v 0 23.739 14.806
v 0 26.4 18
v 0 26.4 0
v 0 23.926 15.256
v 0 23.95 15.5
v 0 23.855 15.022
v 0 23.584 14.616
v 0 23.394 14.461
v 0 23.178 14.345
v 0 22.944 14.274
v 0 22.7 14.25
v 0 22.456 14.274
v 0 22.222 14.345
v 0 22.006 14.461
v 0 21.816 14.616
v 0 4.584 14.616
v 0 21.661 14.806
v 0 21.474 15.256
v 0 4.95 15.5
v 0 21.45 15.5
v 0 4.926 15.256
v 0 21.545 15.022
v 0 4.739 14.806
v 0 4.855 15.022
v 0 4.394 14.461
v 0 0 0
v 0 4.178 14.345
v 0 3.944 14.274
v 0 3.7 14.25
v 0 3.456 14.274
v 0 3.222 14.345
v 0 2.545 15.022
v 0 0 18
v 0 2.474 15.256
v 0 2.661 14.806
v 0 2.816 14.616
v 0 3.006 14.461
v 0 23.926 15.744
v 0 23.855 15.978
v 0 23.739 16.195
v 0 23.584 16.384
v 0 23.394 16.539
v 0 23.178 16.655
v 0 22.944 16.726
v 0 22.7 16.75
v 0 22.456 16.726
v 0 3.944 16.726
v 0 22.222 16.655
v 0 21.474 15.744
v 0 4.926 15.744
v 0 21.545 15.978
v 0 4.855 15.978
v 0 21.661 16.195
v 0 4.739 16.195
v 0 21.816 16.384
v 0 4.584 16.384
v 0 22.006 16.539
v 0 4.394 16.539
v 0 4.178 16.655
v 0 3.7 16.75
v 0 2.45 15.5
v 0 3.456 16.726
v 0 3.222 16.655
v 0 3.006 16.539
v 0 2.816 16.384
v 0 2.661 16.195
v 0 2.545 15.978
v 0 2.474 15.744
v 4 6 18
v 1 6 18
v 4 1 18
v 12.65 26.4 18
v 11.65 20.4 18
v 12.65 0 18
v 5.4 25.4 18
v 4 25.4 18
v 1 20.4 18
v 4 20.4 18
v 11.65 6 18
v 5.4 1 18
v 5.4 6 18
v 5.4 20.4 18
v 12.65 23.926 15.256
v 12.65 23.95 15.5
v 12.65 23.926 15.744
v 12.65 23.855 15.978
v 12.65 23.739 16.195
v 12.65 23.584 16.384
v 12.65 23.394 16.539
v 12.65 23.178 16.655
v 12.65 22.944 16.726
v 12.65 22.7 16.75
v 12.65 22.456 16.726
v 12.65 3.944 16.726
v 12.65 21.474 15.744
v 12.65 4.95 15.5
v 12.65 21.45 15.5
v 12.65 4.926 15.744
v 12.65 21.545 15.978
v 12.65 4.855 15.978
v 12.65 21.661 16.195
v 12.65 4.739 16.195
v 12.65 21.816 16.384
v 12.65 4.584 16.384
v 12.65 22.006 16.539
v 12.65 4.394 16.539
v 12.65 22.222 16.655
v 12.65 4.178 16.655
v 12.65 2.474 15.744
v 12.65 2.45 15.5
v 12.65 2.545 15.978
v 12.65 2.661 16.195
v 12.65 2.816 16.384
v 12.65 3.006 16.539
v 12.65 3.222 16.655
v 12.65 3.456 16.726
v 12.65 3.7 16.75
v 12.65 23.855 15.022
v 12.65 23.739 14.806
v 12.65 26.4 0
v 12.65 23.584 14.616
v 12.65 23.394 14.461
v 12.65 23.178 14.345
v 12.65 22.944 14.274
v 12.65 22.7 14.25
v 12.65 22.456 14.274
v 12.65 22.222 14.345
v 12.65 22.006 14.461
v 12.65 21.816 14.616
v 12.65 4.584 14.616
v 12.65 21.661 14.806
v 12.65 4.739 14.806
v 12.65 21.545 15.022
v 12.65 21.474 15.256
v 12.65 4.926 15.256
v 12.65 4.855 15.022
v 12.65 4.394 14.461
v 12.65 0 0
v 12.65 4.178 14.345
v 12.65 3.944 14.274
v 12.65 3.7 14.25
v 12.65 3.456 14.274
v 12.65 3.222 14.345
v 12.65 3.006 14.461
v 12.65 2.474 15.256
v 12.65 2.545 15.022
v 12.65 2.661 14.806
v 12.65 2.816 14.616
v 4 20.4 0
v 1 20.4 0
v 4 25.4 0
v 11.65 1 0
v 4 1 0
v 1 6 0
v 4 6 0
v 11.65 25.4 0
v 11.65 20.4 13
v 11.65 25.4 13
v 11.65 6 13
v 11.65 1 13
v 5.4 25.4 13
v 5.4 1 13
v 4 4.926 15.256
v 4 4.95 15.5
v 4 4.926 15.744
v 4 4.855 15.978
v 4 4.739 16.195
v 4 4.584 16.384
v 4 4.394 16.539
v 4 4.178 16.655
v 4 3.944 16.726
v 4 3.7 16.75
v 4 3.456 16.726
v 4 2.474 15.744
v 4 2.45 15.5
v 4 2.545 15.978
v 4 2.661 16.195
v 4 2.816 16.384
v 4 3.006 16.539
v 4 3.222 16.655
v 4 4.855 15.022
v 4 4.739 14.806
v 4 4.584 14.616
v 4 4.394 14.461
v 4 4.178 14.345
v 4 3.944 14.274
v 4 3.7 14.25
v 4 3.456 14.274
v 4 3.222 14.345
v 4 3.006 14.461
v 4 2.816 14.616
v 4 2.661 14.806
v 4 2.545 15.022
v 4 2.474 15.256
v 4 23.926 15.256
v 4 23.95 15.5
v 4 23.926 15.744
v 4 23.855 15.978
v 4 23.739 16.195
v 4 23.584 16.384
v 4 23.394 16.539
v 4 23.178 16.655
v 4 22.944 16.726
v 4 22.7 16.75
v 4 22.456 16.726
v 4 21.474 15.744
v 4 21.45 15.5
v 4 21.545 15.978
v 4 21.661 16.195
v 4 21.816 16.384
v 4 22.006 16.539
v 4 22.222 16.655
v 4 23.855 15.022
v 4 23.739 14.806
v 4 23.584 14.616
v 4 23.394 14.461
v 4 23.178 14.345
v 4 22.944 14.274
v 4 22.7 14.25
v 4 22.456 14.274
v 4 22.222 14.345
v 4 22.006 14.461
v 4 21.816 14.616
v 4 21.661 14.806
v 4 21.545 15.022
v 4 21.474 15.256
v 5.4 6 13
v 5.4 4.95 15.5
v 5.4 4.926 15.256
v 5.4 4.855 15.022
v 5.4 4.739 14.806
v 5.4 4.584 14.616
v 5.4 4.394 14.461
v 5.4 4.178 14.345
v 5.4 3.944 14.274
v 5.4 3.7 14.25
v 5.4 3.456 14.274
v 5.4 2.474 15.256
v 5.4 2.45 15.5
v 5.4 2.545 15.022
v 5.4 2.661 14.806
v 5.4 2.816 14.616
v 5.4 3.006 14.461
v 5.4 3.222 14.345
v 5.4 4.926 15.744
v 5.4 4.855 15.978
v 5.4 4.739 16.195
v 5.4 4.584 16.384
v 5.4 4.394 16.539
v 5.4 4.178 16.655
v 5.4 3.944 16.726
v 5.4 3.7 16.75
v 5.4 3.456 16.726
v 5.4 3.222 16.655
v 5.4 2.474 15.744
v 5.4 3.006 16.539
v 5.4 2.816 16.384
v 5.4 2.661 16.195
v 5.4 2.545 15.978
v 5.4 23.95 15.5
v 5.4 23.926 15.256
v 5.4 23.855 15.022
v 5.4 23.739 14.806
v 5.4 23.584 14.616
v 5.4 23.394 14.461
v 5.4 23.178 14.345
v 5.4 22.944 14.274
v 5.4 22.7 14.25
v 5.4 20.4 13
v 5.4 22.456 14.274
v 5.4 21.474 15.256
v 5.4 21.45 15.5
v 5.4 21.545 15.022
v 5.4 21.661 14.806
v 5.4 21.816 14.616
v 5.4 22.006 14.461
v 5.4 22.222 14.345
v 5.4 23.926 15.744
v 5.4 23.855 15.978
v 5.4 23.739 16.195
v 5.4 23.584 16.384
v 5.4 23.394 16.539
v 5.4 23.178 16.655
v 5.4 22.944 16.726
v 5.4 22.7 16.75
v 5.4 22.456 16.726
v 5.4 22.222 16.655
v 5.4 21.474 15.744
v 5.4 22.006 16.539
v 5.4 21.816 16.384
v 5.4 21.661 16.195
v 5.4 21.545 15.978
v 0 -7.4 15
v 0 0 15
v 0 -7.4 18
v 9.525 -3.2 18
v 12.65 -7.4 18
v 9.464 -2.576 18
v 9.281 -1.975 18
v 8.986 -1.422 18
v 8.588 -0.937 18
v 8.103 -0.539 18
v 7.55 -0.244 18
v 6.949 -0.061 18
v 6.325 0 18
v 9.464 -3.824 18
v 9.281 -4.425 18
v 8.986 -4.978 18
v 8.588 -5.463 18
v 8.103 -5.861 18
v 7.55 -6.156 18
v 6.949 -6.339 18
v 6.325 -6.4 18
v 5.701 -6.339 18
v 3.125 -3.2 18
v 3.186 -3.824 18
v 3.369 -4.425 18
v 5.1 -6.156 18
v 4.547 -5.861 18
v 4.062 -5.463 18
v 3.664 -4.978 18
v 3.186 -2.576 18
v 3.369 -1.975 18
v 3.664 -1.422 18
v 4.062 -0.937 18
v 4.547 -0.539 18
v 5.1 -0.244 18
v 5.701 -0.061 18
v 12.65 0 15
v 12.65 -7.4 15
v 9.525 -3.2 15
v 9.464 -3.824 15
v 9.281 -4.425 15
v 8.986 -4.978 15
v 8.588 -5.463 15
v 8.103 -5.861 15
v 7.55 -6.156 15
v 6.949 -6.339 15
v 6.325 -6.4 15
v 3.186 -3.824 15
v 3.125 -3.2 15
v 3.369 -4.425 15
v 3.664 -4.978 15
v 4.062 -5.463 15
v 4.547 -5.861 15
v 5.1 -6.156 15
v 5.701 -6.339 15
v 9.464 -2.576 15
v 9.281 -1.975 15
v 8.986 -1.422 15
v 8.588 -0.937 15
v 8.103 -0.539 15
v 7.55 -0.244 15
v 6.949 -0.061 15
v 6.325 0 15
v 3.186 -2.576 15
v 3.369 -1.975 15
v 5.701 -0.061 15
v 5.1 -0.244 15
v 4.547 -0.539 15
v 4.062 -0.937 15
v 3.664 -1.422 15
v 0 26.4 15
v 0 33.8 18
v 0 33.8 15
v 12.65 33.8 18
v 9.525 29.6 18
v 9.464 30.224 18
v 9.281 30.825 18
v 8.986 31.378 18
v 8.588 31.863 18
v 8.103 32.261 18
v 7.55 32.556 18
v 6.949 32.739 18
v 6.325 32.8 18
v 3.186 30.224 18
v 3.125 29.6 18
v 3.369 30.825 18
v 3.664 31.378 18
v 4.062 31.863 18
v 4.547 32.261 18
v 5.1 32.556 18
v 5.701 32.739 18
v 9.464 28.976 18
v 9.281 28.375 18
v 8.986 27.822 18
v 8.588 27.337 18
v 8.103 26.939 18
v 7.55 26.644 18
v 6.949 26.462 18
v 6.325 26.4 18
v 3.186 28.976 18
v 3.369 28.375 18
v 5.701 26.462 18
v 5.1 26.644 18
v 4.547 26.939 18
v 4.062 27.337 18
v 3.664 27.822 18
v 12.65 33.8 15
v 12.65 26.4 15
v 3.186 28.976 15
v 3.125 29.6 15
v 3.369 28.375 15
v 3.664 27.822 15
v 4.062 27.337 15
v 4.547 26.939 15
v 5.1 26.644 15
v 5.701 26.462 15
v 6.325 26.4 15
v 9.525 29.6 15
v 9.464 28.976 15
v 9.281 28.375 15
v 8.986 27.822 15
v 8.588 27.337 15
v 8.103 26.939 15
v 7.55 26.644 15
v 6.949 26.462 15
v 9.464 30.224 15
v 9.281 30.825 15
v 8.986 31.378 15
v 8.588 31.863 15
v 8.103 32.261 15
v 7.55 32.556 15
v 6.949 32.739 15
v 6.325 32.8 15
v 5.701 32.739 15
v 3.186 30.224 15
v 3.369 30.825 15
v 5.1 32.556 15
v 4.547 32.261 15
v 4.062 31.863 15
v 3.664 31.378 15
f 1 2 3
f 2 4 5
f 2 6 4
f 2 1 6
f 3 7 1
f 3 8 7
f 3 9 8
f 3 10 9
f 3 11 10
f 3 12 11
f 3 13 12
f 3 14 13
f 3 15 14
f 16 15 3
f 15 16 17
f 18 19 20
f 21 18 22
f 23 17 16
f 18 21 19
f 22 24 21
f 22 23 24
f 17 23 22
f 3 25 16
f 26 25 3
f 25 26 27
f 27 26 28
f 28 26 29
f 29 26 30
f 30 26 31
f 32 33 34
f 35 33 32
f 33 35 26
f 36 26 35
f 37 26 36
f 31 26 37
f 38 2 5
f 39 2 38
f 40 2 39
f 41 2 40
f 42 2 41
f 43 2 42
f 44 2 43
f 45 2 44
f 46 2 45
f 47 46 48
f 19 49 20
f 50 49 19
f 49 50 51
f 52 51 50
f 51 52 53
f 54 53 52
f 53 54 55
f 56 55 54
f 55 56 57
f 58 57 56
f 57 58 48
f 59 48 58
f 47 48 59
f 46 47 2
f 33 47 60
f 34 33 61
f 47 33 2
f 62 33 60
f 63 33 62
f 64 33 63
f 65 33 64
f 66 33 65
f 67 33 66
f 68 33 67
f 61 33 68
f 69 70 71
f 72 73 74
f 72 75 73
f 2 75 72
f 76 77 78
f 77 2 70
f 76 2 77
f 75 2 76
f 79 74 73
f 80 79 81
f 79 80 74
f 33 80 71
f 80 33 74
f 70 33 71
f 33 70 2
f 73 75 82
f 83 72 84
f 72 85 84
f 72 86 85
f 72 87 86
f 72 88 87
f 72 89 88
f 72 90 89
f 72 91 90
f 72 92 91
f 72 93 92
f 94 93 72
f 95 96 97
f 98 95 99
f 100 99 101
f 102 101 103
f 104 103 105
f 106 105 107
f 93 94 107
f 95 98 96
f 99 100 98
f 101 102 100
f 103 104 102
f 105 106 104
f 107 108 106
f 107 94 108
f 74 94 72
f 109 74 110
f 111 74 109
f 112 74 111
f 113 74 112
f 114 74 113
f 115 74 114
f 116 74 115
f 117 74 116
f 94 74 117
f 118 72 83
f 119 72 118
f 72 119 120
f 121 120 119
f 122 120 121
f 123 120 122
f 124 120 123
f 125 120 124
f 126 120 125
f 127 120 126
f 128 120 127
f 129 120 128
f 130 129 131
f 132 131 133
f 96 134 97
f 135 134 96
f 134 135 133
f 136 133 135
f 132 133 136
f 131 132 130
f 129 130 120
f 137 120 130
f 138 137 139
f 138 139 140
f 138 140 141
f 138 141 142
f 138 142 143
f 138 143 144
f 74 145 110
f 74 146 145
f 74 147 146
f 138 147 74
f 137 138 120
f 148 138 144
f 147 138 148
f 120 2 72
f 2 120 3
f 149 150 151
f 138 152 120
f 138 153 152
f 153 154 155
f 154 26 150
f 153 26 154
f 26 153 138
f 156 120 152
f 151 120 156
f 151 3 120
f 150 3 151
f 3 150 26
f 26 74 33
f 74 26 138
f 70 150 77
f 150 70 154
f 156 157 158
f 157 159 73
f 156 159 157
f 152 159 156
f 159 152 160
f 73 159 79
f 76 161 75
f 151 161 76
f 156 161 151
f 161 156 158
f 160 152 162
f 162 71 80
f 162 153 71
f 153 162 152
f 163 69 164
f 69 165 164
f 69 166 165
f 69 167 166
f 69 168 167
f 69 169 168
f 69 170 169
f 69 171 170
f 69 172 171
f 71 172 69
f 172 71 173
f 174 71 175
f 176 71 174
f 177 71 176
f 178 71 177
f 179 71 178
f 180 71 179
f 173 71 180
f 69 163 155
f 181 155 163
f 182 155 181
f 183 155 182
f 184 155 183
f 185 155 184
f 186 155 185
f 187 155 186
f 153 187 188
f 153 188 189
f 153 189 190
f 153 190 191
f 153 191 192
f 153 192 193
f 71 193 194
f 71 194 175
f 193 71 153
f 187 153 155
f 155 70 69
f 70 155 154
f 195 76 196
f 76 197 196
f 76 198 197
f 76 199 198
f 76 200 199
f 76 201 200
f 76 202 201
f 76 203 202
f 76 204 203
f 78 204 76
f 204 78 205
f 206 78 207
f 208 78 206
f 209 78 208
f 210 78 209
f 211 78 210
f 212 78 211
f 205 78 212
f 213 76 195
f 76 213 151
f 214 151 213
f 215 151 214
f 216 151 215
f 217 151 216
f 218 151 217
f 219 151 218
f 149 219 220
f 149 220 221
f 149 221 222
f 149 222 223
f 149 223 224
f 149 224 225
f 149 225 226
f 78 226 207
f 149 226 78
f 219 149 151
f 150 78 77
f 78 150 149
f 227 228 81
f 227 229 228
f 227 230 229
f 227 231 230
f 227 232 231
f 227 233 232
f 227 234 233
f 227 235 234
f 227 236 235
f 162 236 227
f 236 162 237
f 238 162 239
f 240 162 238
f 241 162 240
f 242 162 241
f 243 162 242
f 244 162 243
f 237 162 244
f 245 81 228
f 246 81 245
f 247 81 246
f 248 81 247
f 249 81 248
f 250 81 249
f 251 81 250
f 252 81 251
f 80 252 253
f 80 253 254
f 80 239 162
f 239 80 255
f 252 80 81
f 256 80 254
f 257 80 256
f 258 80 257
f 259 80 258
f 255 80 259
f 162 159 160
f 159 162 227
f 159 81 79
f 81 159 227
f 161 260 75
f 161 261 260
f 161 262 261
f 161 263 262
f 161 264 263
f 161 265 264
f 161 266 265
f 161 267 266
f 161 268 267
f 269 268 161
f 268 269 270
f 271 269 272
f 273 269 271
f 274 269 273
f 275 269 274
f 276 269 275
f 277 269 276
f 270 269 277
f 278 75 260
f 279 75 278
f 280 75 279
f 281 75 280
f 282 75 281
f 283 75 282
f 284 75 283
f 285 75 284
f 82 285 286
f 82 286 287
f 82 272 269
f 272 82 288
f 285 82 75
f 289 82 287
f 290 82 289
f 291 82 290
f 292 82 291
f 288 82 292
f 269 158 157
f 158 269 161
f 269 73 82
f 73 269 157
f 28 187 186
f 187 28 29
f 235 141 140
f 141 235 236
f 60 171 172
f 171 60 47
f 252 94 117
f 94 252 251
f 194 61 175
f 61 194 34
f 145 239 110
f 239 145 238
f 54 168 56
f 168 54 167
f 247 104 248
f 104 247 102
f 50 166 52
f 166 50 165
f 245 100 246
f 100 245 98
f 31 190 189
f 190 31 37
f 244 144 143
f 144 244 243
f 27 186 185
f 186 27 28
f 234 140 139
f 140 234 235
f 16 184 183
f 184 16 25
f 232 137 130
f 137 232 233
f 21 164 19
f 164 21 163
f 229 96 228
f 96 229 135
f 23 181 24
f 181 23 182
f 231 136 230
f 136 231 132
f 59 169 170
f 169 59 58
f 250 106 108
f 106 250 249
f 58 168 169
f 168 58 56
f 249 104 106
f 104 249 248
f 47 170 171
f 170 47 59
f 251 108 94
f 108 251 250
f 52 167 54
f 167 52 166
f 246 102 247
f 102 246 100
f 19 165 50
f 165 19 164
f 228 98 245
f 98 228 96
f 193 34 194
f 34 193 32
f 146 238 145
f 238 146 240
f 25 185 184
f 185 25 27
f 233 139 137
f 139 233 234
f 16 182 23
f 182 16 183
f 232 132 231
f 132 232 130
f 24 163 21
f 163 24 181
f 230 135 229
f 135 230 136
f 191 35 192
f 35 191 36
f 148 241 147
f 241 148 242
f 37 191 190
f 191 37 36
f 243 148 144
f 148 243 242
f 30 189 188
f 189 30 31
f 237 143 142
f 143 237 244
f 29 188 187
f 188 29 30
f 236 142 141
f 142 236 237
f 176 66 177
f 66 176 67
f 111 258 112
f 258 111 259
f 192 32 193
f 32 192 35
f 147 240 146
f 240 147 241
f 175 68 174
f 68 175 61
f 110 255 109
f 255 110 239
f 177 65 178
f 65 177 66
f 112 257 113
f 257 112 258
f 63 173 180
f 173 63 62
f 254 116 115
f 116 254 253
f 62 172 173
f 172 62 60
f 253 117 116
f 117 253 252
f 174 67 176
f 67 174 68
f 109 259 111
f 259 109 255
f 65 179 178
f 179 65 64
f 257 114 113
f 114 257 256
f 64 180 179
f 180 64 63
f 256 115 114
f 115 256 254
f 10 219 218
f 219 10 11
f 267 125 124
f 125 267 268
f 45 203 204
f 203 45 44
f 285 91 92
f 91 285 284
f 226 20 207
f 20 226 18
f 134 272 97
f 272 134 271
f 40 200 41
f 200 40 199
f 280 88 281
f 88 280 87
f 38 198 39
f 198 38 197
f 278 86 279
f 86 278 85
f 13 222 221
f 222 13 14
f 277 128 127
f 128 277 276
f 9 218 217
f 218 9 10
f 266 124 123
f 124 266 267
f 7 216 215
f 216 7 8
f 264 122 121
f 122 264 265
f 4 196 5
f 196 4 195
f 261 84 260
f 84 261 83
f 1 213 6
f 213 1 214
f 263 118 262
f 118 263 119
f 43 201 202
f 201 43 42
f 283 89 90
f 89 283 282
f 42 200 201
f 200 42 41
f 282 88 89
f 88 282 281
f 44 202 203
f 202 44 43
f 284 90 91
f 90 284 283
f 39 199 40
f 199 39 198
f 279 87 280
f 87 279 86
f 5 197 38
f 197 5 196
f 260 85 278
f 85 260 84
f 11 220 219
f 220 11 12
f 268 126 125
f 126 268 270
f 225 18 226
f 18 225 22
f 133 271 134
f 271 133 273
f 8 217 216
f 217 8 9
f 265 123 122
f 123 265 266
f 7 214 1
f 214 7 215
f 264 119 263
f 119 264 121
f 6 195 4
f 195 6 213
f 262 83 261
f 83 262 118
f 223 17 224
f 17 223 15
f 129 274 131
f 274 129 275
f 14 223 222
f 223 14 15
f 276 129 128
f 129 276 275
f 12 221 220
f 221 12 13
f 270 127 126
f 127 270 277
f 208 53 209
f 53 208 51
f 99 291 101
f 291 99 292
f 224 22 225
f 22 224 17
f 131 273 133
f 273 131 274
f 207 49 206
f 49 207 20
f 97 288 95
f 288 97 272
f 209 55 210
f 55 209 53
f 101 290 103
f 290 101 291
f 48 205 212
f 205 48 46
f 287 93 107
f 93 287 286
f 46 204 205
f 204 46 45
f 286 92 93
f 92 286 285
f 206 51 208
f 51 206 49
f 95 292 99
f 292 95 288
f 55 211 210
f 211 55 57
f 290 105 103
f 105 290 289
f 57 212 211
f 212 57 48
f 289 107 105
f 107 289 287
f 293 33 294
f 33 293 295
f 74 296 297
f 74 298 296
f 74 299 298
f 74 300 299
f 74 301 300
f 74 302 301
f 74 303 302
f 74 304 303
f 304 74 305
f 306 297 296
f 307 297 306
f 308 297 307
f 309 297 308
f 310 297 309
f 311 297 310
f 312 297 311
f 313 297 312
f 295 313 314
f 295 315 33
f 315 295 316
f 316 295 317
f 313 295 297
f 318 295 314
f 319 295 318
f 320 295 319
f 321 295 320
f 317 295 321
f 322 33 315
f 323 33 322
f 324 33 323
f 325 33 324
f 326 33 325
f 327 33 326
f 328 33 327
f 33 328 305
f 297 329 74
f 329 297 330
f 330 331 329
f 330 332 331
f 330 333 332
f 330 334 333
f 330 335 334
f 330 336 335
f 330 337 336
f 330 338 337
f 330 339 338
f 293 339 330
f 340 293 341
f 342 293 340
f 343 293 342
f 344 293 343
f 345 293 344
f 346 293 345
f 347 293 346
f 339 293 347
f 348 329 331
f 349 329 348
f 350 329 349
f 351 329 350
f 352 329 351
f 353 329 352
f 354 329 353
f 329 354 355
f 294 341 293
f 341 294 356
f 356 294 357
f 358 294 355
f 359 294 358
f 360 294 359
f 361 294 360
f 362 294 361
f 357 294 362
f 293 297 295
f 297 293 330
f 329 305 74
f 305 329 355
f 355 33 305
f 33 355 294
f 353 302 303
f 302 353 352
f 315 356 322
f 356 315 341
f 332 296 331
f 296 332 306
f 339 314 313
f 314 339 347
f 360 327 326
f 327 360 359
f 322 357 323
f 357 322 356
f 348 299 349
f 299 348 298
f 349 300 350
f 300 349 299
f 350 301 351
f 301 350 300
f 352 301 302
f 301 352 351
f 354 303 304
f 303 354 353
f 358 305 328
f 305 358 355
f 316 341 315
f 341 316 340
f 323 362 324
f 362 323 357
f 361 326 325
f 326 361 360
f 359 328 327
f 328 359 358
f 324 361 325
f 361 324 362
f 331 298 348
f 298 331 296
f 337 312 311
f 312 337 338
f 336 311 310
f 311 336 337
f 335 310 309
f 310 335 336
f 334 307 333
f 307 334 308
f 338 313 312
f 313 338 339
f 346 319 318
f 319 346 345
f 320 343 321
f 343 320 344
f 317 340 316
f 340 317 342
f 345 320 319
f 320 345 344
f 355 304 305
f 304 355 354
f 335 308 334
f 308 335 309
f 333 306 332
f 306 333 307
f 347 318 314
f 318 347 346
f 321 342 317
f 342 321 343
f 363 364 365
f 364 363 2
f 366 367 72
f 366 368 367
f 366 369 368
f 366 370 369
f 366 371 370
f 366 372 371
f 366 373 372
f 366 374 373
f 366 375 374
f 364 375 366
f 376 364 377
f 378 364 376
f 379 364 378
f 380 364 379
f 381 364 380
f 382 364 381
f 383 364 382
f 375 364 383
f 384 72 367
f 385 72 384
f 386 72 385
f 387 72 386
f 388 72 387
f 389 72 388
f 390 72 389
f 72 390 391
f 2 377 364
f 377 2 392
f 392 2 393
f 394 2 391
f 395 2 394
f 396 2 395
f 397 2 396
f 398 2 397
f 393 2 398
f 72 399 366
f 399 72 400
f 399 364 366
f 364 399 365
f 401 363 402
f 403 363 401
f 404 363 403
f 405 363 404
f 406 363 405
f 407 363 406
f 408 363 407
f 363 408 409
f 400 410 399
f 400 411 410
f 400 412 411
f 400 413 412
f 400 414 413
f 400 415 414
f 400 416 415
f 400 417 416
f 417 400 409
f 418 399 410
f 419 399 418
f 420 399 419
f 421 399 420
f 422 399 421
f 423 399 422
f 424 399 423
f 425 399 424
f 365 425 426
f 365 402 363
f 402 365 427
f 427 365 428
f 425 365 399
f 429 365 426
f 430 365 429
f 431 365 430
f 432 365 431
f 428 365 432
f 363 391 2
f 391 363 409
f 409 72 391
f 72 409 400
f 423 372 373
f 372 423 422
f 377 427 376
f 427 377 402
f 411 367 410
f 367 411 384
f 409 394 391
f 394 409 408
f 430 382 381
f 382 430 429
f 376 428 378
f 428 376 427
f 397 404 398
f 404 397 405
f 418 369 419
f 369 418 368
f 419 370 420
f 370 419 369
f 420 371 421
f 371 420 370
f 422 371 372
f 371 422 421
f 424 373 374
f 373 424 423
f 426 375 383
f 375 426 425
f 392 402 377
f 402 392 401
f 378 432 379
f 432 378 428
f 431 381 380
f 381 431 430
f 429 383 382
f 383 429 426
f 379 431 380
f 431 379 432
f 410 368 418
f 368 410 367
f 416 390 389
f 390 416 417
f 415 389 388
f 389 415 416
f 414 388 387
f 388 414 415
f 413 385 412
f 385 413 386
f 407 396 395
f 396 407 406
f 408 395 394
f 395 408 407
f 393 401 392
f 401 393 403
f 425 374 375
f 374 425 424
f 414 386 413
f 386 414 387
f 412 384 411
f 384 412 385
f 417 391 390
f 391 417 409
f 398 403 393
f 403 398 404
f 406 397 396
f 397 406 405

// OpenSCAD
/**********************************************************************************************************************
 **
 ** parts/printed/ir_sensor_housing.scad
 **
 ** This file constructs the housing for the Mini Differential IR height sensor board available from 
 ** http://www.escher3d.com/pages/order/products/product1.php
 **
 **********************************************************************************************************************/

include <../../conf/colors.scad>
include <../../conf/derived_sizes.scad>
include <../../conf/part_sizes.scad>

use <../../bom/bom.scad>
use <../../parts/vitamins/vitamins.scad>

/**
 * Renders the main body of the housing without the "wings" to fasten it.
 */
module _ir_sensor_housing_body() {

	difference() {
		union() {
			// the outer shape of the housing
			difference() {
				cube([escher_ir_sensor_housing_body_depth(),
					  escher_ir_sensor_housing_body_width(),
					  escher_ir_sensor_housing_body_height()]);
				translate([escher_ir_sensor_housing_wall_thickness(), escher_ir_sensor_housing_wall_thickness(), 0])
				cube([escher_ir_sensor_housing_body_depth() - 2 * escher_ir_sensor_housing_wall_thickness(),
					  escher_ir_sensor_housing_body_width() - 2 * escher_ir_sensor_housing_wall_thickness(),
					  escher_ir_sensor_housing_body_height()]);
			}
		
			// the "resting blocks" on the underside of the PCB
			translate([escher_ir_sensor_housing_wall_thickness(), 
				       escher_ir_sensor_housing_wall_thickness(), 
				       0])
				cube([escher_ir_sensor_housing_top_bottom_clearance() + escher_ir_sensor_pcb_max_pin_length(),
					  escher_ir_sensor_pcb_bottom_side_clearance(),
					  escher_ir_sensor_housing_body_height()]);
			translate([escher_ir_sensor_housing_wall_thickness(), 
				       escher_ir_sensor_housing_body_width() - escher_ir_sensor_housing_wall_thickness() - escher_ir_sensor_pcb_bottom_side_clearance(), 
				       0])
				cube([escher_ir_sensor_housing_top_bottom_clearance() + escher_ir_sensor_pcb_max_pin_length(),
					  escher_ir_sensor_pcb_bottom_side_clearance(),
					  escher_ir_sensor_housing_body_height()]);
		
			// the "mounting blocks" on the component side of the PCB
			_mounting_block_thickness = escher_ir_sensor_pcb_max_component_height() + 
			                            escher_ir_sensor_housing_top_bottom_clearance();
			_mounting_block_x_offset = escher_ir_sensor_housing_body_depth() - escher_ir_sensor_housing_wall_thickness() - _mounting_block_thickness;
			translate([_mounting_block_x_offset, 
				       escher_ir_sensor_housing_wall_thickness(), 
				       escher_ir_sensor_housing_body_height() - escher_ir_sensor_pcb_top_edge_clearance()])
				cube([_mounting_block_thickness,
					  escher_ir_sensor_pcb_top_edge_clearance(),
					  escher_ir_sensor_pcb_top_edge_clearance()]);
			translate([_mounting_block_x_offset, 
					   escher_ir_sensor_housing_body_width() - escher_ir_sensor_housing_wall_thickness() - escher_ir_sensor_pcb_top_edge_clearance(), 
				       escher_ir_sensor_housing_body_height() - escher_ir_sensor_pcb_top_edge_clearance()])
				cube([_mounting_block_thickness,
					  escher_ir_sensor_pcb_top_edge_clearance(),
					  escher_ir_sensor_pcb_top_edge_clearance()]);
		}

		// minus the screw holes
		translate([-epsilon(),
			       escher_ir_sensor_screw_y_offset(),
			       escher_ir_sensor_screw_z_offset()])
			rotate([0, 90, 0])
				cylinder(d = tap_base_diameter(escher_ir_sensor_hole_size()),
					     h = escher_ir_sensor_housing_body_depth() + 2 * epsilon(),
				    	 $fn = escher_ir_sensor_resolution());
		translate([-epsilon(),
			       escher_ir_sensor_housing_body_width() - escher_ir_sensor_screw_y_offset(),
			       escher_ir_sensor_screw_z_offset()])
			rotate([0, 90, 0])
				cylinder(d = tap_base_diameter(escher_ir_sensor_hole_size()),
					     h = escher_ir_sensor_housing_body_depth() + 2 * epsilon(),
				    	 $fn = escher_ir_sensor_resolution());
	}
}

/**
 * Renders the two "wings" that hold the magnets.
 */
module _ir_sensor_housing_magnet_holders() {

	// move to the Z base
	translate([0, 0, escher_ir_sensor_housing_body_height() - escher_ir_sensor_magnet_holder_height()]) {

		// create the left block
		translate([0, -escher_ir_sensor_magnet_holder_width(), 0]) 
			difference() {
				// the block
				cube([escher_ir_sensor_magnet_holder_depth(),
					  escher_ir_sensor_magnet_holder_width(),
					  escher_ir_sensor_magnet_holder_height()]);

				// minus the hole for the magnets
				translate([escher_ir_sensor_magnet_holder_depth() / 2,
					       escher_ir_sensor_housing_wall_thickness() + escher_ir_sensor_magnet_clearance() + escher_ir_sensor_magnet_diameter()/2,
					       escher_ir_sensor_magnet_holder_height() - (escher_ir_sensor_magnet_height() + escher_ir_sensor_magnet_clearance())])
				cylinder(d = escher_ir_sensor_magnet_diameter() + 2 * escher_ir_sensor_magnet_clearance(),
					     h = escher_ir_sensor_magnet_height() + escher_ir_sensor_magnet_clearance(),
					     $fn = escher_ir_sensor_resolution());
			}

		// create the right block
		translate([0, escher_ir_sensor_housing_body_width(), 0]) 
			difference() {
				// the block
				cube([escher_ir_sensor_magnet_holder_depth(),
					  escher_ir_sensor_magnet_holder_width(),
					  escher_ir_sensor_magnet_holder_height()]);

				// minus the hole for the magnets
				translate([escher_ir_sensor_magnet_holder_depth() / 2,
					       escher_ir_sensor_magnet_clearance() + escher_ir_sensor_magnet_diameter()/2,
					       escher_ir_sensor_magnet_holder_height() - (escher_ir_sensor_magnet_height() + escher_ir_sensor_magnet_clearance())])
				cylinder(d = escher_ir_sensor_magnet_diameter() + 2 * escher_ir_sensor_magnet_clearance(),
					     h = escher_ir_sensor_magnet_height() + escher_ir_sensor_magnet_clearance(),
					     $fn = escher_ir_sensor_resolution());
			}
	}
} 

/**
 * Creates the housing by rendering it from scratch. This module is not to be called externally, use 
 * ir_sensor_housing() instead.
 */
module _render_ir_sensor_housing() {
	color_printed_head_parts()
		render() {
			_ir_sensor_housing_body();
			_ir_sensor_housing_magnet_holders();
		} 
}

/**
 * Main module to use the pre-rendered sensor housing. 
 * TODO describe the orientation of the housing
 */
module ir_sensor_housing() {
	bom_entry(section = "Printed Parts", description = "Small Parts", size = "IR Sensor Housing");
	color_printed_head_parts()
		import(file = "ir_sensor_housing.stl");
}

/** 
 * Renders the hardware (nuts, bolts, screws) that are used to fixed the printed part to the surrounding parts.
 * This also includes the sensor board.
 */
module ir_sensor_housing_hardware() {

	// the sensor board inside the housing
	translate([escher_ir_sensor_housing_wall_thickness() 
		       + escher_ir_sensor_housing_top_bottom_clearance()
               + escher_ir_sensor_pcb_max_pin_length()
               + escher_ir_sensor_housing_pcb_clearance(),
		       escher_ir_sensor_housing_wall_thickness() 
               + escher_ir_sensor_housing_pcb_clearance(),
		       0])
		escher_ir_sensor();

	// the screws to hold the sensor board
	translate([-epsilon(),
		       escher_ir_sensor_screw_y_offset(),
		       escher_ir_sensor_screw_z_offset()])
		screw(size = escher_ir_sensor_hole_size(),
			  min_length = escher_ir_sensor_screw_min_length(),
			  max_length = escher_ir_sensor_housing_body_depth());
	translate([-epsilon(),
		       escher_ir_sensor_housing_body_width() - escher_ir_sensor_screw_y_offset(),
		       escher_ir_sensor_screw_z_offset()])
		screw(size = escher_ir_sensor_hole_size(),
			  min_length = escher_ir_sensor_screw_min_length(),
			  max_length = escher_ir_sensor_housing_body_depth());

	// the magnets
	translate([escher_ir_sensor_magnet_holder_depth()/2,
		       - escher_ir_sensor_magnet_diameter() / 2 - escher_ir_sensor_magnet_clearance(), 
		       escher_ir_sensor_housing_body_height() - escher_ir_sensor_magnet_height()]) 
		magnet_cylinder();
	translate([escher_ir_sensor_magnet_holder_depth()/2,
		       escher_ir_sensor_housing_body_width() + escher_ir_sensor_magnet_diameter() / 2 + escher_ir_sensor_magnet_clearance(), 
		       escher_ir_sensor_housing_body_height() - escher_ir_sensor_magnet_height()]) 
		magnet_cylinder();

}

_render_ir_sensor_housing();
